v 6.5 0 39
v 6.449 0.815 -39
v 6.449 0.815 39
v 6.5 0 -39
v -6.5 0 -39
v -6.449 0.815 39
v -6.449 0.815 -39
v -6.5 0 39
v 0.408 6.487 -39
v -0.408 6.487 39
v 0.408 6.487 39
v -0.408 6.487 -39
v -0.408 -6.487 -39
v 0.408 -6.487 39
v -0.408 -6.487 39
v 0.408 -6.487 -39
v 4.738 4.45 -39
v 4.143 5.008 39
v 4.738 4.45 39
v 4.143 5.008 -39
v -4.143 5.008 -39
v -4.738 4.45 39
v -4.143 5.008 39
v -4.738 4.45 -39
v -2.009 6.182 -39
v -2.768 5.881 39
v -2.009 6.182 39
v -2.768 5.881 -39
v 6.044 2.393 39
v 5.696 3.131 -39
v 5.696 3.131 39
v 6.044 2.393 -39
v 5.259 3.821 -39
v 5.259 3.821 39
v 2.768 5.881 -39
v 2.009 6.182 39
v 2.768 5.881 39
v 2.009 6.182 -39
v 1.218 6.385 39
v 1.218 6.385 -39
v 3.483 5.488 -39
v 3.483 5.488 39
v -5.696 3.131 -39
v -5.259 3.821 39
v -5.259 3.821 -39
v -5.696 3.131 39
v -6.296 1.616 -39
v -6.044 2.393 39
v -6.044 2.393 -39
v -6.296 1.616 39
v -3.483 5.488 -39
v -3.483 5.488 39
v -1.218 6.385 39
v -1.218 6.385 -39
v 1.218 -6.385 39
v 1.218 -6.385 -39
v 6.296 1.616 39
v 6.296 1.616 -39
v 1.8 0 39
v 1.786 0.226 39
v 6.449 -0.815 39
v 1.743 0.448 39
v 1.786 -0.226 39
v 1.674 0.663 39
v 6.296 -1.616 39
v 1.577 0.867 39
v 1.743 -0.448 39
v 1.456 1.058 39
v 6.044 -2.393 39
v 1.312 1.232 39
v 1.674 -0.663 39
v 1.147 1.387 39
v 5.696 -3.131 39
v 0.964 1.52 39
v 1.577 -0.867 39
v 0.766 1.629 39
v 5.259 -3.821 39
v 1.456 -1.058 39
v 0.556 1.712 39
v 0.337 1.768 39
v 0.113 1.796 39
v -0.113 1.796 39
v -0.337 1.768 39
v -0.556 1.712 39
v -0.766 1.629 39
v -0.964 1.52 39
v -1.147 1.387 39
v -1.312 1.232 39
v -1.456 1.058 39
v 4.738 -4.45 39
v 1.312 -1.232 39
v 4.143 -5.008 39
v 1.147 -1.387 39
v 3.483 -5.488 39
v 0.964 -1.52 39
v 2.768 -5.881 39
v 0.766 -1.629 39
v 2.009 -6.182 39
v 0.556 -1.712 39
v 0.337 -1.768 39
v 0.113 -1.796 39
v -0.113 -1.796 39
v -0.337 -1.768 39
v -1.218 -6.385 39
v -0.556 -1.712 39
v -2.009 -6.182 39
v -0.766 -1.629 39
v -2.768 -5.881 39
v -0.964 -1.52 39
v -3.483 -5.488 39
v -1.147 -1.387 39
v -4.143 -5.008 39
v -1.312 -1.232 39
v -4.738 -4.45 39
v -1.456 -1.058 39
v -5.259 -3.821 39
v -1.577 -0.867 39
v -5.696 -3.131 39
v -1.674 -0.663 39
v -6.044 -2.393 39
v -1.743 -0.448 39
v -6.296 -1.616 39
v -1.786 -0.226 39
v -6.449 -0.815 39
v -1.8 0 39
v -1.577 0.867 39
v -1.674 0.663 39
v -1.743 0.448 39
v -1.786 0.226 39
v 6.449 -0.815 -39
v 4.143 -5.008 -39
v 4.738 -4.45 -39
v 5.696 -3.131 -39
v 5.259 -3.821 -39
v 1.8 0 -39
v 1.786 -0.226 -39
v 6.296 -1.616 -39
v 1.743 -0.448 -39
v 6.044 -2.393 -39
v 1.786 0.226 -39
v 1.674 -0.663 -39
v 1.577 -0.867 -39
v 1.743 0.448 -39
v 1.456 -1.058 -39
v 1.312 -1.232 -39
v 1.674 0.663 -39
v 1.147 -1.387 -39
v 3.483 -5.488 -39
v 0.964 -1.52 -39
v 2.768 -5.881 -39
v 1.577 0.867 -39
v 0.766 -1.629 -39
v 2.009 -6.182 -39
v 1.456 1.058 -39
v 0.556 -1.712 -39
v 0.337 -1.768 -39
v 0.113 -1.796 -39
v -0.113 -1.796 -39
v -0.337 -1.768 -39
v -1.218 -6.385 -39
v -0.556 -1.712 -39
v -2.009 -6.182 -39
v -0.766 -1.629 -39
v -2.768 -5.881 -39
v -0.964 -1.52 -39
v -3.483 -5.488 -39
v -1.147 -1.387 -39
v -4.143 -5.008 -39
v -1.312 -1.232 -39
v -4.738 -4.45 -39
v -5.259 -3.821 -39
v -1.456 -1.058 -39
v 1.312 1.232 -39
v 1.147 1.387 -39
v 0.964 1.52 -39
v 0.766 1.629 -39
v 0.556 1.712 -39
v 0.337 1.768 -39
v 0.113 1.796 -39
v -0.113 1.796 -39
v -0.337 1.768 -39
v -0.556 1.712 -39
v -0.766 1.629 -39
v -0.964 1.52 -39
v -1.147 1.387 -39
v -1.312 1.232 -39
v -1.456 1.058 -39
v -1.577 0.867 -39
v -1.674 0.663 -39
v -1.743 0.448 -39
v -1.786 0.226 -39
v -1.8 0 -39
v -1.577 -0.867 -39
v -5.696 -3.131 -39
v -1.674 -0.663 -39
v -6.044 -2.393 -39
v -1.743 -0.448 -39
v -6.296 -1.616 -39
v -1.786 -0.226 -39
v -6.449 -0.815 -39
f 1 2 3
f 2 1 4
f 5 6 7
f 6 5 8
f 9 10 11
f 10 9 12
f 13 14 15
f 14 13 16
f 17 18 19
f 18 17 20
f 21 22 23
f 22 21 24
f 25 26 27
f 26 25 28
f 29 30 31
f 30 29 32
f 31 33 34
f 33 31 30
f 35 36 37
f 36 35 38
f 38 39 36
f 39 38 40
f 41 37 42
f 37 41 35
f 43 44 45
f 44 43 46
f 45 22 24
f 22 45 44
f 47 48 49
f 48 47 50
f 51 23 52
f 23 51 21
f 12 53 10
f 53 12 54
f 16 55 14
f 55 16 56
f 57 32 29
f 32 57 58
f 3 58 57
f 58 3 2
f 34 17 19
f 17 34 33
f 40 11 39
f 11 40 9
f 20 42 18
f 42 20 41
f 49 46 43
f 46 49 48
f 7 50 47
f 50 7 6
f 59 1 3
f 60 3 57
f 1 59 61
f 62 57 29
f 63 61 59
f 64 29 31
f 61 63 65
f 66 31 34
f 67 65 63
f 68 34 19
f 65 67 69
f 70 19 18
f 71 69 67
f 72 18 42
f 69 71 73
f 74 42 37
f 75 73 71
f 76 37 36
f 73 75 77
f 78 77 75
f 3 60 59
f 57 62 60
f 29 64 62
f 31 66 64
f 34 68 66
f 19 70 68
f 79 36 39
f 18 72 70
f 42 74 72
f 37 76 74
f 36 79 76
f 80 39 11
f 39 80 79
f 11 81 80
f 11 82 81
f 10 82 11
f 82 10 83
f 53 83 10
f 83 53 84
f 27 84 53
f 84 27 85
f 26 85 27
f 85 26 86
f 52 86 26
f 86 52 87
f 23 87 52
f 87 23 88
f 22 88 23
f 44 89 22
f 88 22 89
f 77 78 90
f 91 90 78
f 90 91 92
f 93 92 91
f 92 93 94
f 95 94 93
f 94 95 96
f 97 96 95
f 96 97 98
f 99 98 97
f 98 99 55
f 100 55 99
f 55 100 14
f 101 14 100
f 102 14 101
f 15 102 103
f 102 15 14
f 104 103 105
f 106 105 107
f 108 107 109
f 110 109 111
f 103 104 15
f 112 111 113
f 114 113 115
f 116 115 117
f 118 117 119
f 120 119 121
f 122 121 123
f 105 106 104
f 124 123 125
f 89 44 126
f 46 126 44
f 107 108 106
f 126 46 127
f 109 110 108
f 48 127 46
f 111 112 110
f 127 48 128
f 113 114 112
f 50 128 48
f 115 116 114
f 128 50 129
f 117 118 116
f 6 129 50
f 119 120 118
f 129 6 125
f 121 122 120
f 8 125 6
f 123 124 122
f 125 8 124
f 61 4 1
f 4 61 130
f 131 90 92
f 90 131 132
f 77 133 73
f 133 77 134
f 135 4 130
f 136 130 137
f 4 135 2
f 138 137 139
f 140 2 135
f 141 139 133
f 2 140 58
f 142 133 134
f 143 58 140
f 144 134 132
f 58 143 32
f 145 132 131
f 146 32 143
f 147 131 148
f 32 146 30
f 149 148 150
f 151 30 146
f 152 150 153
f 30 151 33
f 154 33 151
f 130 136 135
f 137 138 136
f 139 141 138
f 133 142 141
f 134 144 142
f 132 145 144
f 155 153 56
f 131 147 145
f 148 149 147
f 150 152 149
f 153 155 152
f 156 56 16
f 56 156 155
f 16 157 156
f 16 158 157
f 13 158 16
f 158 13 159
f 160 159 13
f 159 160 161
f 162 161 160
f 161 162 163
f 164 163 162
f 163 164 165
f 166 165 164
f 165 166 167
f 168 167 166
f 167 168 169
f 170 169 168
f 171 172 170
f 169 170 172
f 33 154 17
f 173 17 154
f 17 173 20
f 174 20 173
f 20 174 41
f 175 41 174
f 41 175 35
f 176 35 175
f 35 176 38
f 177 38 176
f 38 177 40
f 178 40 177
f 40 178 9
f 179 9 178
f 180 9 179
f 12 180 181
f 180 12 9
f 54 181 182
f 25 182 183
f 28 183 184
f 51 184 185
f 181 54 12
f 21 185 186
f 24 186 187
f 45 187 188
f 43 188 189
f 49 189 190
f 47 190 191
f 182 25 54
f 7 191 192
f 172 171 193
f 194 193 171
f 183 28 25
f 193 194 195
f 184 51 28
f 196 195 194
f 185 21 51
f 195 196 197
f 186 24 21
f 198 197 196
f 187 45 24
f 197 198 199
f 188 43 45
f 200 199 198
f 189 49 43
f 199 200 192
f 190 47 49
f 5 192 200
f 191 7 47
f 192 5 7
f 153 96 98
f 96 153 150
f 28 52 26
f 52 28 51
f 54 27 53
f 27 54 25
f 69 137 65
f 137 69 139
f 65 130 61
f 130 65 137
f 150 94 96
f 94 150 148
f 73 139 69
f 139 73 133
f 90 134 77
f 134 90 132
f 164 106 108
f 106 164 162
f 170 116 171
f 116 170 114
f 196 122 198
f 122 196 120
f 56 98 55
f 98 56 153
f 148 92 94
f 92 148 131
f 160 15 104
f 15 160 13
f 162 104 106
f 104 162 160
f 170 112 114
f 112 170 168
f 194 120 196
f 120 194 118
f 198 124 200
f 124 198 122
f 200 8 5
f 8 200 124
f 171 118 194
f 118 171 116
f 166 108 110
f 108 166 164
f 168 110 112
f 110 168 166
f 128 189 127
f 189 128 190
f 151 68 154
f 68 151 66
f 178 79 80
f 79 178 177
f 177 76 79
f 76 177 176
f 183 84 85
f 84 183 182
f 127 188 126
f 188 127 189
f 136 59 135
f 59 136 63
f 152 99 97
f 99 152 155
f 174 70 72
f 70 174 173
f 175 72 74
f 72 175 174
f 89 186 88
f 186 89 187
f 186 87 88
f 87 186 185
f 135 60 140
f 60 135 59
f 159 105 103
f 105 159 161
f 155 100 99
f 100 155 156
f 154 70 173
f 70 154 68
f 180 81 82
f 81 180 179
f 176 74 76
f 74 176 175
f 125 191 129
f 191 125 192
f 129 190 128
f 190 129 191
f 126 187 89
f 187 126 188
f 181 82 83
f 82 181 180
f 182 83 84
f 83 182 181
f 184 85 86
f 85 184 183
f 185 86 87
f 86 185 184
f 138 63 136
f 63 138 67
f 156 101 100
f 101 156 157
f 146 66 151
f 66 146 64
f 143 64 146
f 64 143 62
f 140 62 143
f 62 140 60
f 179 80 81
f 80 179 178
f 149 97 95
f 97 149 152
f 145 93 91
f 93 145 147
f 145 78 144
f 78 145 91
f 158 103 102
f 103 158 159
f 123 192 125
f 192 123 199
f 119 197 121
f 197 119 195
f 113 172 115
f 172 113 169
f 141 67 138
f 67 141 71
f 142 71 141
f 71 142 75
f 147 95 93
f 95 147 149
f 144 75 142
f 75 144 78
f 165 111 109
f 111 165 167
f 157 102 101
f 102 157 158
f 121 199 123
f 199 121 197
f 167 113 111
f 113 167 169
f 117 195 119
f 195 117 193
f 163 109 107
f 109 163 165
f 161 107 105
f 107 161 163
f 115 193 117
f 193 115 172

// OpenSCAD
$fn = 50;


difference() {
	union() {
		translate(v = [0, 0, -39.0000000000]) {
			cylinder(h = 78, r = 6.5000000000);
		}
	}
	union() {
		translate(v = [0, 0, -100.0000000000]) {
			cylinder(h = 200, r = 1.8000000000);
		}
	}
}
